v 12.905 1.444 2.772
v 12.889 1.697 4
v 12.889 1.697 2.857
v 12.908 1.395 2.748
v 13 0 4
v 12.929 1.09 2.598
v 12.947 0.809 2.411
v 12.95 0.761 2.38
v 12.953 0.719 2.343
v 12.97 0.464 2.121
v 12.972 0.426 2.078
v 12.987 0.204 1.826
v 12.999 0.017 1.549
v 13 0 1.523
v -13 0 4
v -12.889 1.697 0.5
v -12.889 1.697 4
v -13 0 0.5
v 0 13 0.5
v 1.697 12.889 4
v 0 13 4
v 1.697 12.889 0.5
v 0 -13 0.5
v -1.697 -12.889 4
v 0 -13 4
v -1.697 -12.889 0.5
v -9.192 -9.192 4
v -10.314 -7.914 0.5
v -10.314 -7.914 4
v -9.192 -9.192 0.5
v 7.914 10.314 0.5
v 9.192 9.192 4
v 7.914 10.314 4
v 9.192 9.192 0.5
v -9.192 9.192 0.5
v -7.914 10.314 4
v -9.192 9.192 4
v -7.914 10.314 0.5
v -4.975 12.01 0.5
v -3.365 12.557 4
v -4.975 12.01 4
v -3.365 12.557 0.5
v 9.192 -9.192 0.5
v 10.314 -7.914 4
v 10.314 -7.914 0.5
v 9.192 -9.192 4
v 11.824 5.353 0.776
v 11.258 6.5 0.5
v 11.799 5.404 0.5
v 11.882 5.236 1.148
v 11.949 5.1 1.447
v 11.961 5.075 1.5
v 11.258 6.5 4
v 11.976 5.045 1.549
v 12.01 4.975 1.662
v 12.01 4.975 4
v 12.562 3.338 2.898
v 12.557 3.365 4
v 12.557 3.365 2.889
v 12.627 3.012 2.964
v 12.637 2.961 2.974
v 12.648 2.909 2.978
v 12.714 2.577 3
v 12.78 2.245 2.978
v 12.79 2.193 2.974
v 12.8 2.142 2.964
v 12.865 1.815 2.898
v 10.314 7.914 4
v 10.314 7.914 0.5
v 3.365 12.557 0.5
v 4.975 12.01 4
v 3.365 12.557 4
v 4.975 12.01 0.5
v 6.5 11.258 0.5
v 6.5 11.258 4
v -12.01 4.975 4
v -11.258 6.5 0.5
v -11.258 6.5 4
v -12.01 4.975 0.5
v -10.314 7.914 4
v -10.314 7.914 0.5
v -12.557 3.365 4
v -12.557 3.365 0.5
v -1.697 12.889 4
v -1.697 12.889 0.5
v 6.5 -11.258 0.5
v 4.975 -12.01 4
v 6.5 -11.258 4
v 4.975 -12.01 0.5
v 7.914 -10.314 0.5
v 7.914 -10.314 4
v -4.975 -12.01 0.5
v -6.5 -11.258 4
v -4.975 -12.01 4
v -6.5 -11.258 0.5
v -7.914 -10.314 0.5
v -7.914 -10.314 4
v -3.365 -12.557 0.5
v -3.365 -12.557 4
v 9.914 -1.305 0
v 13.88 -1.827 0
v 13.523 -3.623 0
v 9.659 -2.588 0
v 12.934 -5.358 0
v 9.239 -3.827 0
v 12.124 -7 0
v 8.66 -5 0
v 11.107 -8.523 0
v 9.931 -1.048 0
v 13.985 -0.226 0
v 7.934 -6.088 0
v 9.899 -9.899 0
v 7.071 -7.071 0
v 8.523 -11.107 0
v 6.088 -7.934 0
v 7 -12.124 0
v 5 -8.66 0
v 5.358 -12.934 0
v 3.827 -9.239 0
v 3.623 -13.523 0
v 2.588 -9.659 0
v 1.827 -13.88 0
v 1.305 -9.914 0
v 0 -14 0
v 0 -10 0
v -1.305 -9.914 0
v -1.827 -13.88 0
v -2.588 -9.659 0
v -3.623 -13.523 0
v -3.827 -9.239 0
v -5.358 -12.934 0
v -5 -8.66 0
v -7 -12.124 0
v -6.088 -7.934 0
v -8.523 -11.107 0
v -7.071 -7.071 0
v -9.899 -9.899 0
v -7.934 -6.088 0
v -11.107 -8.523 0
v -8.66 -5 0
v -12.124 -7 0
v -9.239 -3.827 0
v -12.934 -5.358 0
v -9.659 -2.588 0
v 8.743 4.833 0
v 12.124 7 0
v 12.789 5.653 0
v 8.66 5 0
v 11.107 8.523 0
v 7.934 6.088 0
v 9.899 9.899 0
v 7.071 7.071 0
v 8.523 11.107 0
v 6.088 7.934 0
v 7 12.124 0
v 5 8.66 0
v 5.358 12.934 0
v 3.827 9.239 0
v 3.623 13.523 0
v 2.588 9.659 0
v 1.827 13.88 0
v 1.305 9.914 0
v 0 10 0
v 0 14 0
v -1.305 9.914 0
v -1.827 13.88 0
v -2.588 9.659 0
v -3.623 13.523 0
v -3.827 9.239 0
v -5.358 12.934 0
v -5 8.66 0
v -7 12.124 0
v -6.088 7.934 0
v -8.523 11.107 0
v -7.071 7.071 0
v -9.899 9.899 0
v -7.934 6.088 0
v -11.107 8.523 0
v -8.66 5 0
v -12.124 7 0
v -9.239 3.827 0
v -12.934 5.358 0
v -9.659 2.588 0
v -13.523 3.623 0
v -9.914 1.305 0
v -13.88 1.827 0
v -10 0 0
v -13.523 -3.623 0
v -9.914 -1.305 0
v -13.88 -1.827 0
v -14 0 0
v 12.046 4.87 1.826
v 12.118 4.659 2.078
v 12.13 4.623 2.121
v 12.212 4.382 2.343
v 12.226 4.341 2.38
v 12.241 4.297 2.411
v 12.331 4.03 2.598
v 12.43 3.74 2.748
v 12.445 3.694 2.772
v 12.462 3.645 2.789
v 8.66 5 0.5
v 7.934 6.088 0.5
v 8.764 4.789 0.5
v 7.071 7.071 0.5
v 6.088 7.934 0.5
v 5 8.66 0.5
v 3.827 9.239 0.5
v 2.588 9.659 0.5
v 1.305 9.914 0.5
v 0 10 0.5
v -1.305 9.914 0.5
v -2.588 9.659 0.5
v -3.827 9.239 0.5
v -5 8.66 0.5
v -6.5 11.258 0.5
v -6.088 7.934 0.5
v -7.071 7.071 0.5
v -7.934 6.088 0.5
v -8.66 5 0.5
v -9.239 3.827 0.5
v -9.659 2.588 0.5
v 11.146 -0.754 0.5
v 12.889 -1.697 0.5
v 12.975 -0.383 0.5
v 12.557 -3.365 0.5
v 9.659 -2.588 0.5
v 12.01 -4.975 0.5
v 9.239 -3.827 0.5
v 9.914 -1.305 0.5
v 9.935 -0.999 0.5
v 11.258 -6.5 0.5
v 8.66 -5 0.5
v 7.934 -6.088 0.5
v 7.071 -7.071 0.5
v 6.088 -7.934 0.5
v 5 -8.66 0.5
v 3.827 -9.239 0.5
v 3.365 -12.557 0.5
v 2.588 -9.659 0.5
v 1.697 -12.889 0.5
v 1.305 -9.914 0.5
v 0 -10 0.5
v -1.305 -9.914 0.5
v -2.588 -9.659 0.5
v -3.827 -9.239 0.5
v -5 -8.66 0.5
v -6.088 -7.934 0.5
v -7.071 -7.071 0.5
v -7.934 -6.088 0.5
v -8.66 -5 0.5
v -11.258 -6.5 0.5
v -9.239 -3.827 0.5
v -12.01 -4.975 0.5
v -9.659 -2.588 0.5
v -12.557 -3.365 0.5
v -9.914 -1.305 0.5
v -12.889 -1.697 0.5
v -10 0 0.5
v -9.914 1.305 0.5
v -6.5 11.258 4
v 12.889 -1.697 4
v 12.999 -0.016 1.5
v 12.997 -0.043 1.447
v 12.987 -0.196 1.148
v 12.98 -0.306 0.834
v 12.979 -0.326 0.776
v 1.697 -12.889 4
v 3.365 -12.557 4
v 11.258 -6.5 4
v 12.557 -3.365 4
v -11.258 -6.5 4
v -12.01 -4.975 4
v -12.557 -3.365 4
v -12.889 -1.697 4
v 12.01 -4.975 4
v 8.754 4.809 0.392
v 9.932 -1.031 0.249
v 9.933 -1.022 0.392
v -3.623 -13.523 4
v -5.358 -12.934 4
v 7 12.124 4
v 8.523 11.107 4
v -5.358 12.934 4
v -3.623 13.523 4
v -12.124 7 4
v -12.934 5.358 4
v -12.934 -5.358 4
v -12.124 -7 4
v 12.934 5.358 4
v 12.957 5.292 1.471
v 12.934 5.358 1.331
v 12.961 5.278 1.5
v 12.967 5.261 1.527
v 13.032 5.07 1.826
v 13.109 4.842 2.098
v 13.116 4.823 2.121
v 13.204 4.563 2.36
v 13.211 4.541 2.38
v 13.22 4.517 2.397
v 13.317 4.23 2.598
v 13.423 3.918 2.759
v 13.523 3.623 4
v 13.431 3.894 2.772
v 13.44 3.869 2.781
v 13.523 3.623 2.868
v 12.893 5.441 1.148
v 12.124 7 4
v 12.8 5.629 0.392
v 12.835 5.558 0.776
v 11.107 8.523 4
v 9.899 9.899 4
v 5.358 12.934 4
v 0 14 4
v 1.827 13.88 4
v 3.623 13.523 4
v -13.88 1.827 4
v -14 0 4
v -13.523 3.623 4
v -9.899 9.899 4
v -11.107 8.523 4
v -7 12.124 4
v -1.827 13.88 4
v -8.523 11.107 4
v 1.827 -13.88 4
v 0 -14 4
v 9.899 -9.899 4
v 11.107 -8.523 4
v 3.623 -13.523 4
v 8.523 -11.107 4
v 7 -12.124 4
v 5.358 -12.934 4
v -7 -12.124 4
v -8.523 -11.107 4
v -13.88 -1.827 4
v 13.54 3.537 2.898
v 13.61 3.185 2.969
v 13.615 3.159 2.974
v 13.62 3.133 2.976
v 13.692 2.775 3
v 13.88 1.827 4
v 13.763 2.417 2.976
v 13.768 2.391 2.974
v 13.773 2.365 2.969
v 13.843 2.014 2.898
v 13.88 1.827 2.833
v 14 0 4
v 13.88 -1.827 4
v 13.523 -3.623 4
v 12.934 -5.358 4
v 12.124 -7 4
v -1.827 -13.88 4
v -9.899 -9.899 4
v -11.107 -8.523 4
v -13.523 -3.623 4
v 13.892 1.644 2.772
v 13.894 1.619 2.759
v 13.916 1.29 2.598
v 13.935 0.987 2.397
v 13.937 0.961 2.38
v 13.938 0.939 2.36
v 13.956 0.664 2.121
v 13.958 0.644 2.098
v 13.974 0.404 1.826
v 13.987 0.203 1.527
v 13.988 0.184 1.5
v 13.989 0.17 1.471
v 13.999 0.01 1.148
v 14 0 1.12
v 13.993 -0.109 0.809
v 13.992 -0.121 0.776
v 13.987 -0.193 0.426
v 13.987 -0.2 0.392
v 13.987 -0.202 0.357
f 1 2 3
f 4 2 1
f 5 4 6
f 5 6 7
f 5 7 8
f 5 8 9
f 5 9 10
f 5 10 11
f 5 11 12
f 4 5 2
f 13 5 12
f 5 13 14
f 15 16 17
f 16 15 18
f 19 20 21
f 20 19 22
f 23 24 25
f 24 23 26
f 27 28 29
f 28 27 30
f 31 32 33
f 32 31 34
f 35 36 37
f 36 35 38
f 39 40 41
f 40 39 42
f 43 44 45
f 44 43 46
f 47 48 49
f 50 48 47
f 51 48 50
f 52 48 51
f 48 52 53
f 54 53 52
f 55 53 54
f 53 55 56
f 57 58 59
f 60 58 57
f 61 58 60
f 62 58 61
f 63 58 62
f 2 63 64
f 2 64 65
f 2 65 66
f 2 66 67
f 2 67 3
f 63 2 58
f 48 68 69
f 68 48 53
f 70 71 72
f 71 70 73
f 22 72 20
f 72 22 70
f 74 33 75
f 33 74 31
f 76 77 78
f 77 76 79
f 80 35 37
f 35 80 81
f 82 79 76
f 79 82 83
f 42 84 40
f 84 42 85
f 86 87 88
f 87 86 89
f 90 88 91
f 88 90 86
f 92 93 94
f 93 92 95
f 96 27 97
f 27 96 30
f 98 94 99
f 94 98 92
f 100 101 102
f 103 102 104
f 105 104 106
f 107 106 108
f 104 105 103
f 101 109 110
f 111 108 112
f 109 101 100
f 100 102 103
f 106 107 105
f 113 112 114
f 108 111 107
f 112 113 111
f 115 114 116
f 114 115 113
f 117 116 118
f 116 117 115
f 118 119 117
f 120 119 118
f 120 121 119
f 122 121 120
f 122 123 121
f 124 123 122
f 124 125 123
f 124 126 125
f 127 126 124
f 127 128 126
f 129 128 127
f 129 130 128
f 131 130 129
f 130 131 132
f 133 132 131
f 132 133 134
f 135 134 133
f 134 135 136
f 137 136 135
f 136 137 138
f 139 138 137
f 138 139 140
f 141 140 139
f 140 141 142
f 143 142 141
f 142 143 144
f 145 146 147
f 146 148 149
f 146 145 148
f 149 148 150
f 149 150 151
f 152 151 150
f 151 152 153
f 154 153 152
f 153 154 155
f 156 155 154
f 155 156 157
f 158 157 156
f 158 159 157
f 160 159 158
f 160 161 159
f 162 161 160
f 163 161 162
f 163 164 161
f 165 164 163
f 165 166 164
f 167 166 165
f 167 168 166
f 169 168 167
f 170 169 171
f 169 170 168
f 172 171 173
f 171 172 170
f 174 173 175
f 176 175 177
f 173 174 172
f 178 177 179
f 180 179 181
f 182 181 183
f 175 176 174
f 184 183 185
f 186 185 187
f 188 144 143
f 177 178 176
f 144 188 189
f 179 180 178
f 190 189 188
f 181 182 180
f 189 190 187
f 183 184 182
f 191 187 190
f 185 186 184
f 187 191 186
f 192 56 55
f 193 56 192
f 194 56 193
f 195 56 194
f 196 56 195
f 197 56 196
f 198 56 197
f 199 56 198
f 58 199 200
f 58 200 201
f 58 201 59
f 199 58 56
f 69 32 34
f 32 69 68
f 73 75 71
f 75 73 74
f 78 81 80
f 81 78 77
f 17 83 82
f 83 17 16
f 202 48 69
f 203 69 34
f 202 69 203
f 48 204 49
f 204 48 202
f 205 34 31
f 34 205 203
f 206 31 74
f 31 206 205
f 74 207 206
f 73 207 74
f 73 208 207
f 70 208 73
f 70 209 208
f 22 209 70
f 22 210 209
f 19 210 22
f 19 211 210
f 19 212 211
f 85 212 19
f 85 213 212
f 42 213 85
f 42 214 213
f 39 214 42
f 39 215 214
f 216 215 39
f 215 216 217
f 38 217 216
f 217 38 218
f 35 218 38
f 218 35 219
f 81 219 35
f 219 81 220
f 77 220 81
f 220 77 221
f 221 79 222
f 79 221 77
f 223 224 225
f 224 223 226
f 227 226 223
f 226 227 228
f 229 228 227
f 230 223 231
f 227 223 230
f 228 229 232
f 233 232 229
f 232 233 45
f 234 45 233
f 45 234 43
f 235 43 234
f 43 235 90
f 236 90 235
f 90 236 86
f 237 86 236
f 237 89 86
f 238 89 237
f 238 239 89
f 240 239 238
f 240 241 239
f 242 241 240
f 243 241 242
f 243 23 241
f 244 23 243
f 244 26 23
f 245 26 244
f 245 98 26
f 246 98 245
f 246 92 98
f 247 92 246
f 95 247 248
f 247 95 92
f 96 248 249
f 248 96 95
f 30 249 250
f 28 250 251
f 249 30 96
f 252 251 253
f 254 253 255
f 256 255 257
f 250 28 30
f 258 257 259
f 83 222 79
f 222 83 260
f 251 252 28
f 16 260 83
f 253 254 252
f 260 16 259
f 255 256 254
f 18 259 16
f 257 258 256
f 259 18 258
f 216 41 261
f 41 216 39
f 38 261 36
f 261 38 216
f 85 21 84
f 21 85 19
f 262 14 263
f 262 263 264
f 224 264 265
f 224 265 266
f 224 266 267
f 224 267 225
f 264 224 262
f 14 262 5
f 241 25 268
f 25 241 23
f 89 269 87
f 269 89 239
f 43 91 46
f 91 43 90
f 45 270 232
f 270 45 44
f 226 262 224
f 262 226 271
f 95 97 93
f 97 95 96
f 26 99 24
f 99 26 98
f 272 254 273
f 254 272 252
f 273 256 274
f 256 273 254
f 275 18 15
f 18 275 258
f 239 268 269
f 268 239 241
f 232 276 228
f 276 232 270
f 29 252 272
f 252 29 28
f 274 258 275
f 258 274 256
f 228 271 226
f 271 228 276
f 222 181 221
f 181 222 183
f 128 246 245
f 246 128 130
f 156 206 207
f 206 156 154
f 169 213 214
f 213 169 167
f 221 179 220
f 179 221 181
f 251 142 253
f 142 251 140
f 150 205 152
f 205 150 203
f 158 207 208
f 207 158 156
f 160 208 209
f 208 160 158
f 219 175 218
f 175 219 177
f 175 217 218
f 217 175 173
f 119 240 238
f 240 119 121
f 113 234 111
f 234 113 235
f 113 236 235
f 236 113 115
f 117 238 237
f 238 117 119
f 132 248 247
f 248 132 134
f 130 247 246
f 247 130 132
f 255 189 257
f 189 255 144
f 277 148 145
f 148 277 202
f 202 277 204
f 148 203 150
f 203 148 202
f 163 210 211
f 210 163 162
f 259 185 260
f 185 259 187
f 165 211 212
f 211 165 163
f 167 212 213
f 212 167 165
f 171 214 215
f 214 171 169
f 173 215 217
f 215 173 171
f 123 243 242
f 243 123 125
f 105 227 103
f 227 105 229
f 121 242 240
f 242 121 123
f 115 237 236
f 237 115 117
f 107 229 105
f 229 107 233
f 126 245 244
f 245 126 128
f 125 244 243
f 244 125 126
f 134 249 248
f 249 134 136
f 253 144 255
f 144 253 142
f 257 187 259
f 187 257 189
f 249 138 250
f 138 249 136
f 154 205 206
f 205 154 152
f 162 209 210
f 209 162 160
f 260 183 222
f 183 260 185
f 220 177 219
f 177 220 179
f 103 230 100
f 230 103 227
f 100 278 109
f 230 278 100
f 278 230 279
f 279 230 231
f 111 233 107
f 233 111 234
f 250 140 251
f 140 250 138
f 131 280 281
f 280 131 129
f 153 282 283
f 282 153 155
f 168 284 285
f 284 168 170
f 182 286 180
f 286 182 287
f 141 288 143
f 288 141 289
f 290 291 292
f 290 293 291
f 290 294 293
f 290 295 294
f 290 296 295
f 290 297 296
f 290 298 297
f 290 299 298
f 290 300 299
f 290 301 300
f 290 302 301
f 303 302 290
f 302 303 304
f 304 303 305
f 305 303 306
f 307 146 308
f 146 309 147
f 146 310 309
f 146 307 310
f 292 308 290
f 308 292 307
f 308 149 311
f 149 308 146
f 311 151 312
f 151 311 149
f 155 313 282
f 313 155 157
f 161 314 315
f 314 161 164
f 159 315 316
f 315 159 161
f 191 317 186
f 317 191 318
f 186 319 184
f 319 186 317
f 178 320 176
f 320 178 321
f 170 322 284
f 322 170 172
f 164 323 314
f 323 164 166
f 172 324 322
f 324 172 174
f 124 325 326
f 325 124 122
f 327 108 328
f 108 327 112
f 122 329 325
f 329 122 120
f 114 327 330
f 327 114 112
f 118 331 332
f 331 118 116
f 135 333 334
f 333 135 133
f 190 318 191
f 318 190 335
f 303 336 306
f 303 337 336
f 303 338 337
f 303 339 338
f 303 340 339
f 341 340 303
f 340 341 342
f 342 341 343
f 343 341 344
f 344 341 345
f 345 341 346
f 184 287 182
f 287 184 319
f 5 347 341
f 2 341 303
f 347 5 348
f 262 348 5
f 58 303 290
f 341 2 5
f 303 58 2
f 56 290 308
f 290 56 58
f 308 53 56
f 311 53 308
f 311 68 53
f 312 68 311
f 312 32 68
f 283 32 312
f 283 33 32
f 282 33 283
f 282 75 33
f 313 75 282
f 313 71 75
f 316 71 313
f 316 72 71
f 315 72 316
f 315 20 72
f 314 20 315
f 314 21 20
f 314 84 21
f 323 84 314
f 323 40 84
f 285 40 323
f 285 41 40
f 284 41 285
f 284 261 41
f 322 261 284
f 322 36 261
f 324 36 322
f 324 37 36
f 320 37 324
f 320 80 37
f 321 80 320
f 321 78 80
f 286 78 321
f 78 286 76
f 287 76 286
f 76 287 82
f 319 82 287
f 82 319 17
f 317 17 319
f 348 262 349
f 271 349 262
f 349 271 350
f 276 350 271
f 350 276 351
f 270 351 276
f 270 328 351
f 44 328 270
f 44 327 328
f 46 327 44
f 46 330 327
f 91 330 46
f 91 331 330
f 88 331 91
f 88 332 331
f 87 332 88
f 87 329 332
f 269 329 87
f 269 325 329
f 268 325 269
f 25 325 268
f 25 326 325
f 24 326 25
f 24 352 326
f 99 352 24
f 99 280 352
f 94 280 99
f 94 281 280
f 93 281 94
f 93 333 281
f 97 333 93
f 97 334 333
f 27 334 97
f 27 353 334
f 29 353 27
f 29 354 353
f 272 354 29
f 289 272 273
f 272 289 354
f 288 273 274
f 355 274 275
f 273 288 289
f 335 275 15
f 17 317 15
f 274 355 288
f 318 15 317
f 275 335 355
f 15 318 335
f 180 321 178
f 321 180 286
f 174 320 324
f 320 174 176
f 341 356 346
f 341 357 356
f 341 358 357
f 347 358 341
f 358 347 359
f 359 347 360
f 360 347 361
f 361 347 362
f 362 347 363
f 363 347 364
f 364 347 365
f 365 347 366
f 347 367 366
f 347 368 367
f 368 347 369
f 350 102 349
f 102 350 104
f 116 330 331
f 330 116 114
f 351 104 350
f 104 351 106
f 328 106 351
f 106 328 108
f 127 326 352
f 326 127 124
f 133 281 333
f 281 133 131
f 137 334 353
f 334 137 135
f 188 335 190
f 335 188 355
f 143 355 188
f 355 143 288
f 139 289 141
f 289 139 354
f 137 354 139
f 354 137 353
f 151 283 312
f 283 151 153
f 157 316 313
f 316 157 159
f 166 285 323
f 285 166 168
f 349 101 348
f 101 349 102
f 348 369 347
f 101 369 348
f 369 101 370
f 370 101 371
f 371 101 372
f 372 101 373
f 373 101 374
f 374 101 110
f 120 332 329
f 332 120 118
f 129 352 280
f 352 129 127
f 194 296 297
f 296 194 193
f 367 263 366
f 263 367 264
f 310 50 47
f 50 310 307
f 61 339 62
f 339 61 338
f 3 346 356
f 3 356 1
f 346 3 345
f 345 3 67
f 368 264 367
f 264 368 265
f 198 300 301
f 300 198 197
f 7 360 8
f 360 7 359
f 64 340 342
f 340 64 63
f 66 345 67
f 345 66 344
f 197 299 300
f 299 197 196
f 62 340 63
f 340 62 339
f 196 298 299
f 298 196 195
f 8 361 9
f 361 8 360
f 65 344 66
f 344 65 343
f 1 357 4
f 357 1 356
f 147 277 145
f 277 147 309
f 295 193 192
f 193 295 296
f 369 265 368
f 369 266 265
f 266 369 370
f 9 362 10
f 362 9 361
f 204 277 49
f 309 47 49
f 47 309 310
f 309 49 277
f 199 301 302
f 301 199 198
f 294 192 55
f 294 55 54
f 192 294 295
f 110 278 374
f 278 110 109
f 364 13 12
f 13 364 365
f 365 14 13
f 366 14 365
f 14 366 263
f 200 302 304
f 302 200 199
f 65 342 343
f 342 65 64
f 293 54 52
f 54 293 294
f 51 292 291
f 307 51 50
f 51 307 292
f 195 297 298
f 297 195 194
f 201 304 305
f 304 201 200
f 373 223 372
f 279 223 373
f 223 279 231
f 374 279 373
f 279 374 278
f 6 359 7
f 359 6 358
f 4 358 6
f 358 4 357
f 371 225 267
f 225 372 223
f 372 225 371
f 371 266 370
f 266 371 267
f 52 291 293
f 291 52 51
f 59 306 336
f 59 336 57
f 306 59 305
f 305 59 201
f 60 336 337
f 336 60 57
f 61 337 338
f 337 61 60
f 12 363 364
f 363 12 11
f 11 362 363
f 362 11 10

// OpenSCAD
// file: ../build_environments.scad
// build_environments.scad: modules to build level sections
//

module pool(diameter=10.0, wall_height=2.0, step_width=3.0, connections=[])
{
    difference() {
        union() {
        difference() {
            cylinder(h=0.5,r1=diameter+step_width,r2=diameter+step_width,$fn=48);
            translate([0,0,-0.1])
                cylinder(h=0.7,r1=diameter,r2=diameter,$fn=48);
        }
        difference() {
            cylinder(h=wall_height,r1=diameter+step_width+1.0,r2=diameter+step_width+1.0,$fn=48);
            translate([0,0,-0.1])
                cylinder(h=wall_height+0.2,r1=diameter+step_width,r2=diameter+step_width,$fn=48);
        }
        }
    
        for (c = connections)
        {
            rotate([0,90,0]) {
                angle = atan2(c[1],c[0]);
                rotate([-angle,0,0]) {
                    cylinder(h=diameter+5.0,r1=c[2],r2=c[2],$fn=48);
                }
            }
        }
    }
}

module straight(length=10.0, width=2.0, dy1=0.0, dy2=0.0, dz=0.0)
{
    dims = [0, 0, 0, 0, 0, (dz/length)];
    matrix = [
        [ 1, dims[0], dims[1], 0 ],
        [ dims[2], 1, dims[4], 0 ],
        [ dims[5], dims[3], 1, 0 ],
        [ 0, 0, 0, 1 ]
    ];
    multmatrix(matrix)
    difference() {
        translate([dy1,0,0])
        union() {
            rotate([0,90,0]) {
                difference() {
                    cylinder(h=(length-dy1-dy2),r1=width+1.0,r2=width+1.0,$fn=24);
                    translate([0,0,-0.1])
                        cylinder(h=(length-dy1-dy2+0.2),r1=width,r2=width,$fn=24);
                }
                difference() {
                    cylinder(h=1.0,r1=width+2.0,r2=width+2.0,$fn=24);
                    translate([0,0,-0.1])
                        cylinder(h=1.2,r1=width,r2=width,$fn=24);
                }
                translate([0,0,(length-dy1-dy2)-1.0]) {
                    difference() {
                        cylinder(h=1.0,r1=width+2.0,r2=width+2.0,$fn=24);
                        translate([0,0,-0.1])
                            cylinder(h=1.2,r1=width,r2=width,$fn=24);
                    }
                }
            }
        }
        translate([0,0,-(2*width+4.0)/2])
            cube([3*length,3*length,2*width+4.0],center=true);
    }
}

module curve(p0=[0,0], center=[0,0], dir=1, angle=0.0, width=2.0)
{
    radius = sqrt((p0[0]-center[0])*(p0[0]-center[0]) + (p0[1]-center[1])*(p0[1]-center[1]));
    if (dir == 0) {
        difference() {
            rotate([0,0,-90])
            difference() {
                rotate_extrude(angle = angle, convexity = 10, $fn=32)
                    translate([radius, 0, 0])
                        circle(r = width+1.0,$fn=24);
                rotate([0,0,-1.0])
                    rotate_extrude(angle = angle+2.0, convexity = 10, $fn=32)
                        translate([radius, 0, 0])
                            circle(r = width,$fn=24);
            }
            translate([0,0,-(2*width+4.0)/2])
                cube([5*radius,5*radius,2*width+4.0],center=true);
        }
    }
    else {
        difference() {
            rotate([0,0,90])
            difference() {
                rotate_extrude(angle = -angle, convexity = 10, $fn=32)
                    translate([radius, 0, 0])
                        circle(r = width+1.0,$fn=24);
                rotate([0,0,1.0])
                    rotate_extrude(angle = -angle-2.0, convexity = 10, $fn=32)
                        translate([radius, 0, 0])
                            circle(r = width,$fn=24);
            }
            translate([0,0,-(2*width+4.0)/2])
                cube([5*radius,5*radius,2*width+4.0],center=true);
        }
    }

}

// test pool
//pool(diameter=12.0000, wall_height=3.0000, step_width=3.0000, connections=[[0.0000,-26.0000,2.0000], [23.6074,0.0000,2.0000]]);

// test straight, slope
//straight(length=26.0000, width=2.0000, dy1=11.8322, dy2=6.7082, dz=0.0000);
//straight(length=29.1549, width=12.0000, dy1=0.0000, dy2=0.0000, dz=-15.0000);

// test curve
//curve(p0=[23.6074, 0.0000], center=[23.6074, 5.0000], dir=0, angle=60.1011, width=2.0000);
//curve(p0=[33.6426, 12.4219], center=[37.9771, 9.9295], dir=1, angle=120.4627, width=2.0000);
// main file
use <../build_environments.scad>;
pool(diameter=10.0000, wall_height=4.0000, step_width=3.0000, connections=[[14.5110,2.9412,3.0000]]);
